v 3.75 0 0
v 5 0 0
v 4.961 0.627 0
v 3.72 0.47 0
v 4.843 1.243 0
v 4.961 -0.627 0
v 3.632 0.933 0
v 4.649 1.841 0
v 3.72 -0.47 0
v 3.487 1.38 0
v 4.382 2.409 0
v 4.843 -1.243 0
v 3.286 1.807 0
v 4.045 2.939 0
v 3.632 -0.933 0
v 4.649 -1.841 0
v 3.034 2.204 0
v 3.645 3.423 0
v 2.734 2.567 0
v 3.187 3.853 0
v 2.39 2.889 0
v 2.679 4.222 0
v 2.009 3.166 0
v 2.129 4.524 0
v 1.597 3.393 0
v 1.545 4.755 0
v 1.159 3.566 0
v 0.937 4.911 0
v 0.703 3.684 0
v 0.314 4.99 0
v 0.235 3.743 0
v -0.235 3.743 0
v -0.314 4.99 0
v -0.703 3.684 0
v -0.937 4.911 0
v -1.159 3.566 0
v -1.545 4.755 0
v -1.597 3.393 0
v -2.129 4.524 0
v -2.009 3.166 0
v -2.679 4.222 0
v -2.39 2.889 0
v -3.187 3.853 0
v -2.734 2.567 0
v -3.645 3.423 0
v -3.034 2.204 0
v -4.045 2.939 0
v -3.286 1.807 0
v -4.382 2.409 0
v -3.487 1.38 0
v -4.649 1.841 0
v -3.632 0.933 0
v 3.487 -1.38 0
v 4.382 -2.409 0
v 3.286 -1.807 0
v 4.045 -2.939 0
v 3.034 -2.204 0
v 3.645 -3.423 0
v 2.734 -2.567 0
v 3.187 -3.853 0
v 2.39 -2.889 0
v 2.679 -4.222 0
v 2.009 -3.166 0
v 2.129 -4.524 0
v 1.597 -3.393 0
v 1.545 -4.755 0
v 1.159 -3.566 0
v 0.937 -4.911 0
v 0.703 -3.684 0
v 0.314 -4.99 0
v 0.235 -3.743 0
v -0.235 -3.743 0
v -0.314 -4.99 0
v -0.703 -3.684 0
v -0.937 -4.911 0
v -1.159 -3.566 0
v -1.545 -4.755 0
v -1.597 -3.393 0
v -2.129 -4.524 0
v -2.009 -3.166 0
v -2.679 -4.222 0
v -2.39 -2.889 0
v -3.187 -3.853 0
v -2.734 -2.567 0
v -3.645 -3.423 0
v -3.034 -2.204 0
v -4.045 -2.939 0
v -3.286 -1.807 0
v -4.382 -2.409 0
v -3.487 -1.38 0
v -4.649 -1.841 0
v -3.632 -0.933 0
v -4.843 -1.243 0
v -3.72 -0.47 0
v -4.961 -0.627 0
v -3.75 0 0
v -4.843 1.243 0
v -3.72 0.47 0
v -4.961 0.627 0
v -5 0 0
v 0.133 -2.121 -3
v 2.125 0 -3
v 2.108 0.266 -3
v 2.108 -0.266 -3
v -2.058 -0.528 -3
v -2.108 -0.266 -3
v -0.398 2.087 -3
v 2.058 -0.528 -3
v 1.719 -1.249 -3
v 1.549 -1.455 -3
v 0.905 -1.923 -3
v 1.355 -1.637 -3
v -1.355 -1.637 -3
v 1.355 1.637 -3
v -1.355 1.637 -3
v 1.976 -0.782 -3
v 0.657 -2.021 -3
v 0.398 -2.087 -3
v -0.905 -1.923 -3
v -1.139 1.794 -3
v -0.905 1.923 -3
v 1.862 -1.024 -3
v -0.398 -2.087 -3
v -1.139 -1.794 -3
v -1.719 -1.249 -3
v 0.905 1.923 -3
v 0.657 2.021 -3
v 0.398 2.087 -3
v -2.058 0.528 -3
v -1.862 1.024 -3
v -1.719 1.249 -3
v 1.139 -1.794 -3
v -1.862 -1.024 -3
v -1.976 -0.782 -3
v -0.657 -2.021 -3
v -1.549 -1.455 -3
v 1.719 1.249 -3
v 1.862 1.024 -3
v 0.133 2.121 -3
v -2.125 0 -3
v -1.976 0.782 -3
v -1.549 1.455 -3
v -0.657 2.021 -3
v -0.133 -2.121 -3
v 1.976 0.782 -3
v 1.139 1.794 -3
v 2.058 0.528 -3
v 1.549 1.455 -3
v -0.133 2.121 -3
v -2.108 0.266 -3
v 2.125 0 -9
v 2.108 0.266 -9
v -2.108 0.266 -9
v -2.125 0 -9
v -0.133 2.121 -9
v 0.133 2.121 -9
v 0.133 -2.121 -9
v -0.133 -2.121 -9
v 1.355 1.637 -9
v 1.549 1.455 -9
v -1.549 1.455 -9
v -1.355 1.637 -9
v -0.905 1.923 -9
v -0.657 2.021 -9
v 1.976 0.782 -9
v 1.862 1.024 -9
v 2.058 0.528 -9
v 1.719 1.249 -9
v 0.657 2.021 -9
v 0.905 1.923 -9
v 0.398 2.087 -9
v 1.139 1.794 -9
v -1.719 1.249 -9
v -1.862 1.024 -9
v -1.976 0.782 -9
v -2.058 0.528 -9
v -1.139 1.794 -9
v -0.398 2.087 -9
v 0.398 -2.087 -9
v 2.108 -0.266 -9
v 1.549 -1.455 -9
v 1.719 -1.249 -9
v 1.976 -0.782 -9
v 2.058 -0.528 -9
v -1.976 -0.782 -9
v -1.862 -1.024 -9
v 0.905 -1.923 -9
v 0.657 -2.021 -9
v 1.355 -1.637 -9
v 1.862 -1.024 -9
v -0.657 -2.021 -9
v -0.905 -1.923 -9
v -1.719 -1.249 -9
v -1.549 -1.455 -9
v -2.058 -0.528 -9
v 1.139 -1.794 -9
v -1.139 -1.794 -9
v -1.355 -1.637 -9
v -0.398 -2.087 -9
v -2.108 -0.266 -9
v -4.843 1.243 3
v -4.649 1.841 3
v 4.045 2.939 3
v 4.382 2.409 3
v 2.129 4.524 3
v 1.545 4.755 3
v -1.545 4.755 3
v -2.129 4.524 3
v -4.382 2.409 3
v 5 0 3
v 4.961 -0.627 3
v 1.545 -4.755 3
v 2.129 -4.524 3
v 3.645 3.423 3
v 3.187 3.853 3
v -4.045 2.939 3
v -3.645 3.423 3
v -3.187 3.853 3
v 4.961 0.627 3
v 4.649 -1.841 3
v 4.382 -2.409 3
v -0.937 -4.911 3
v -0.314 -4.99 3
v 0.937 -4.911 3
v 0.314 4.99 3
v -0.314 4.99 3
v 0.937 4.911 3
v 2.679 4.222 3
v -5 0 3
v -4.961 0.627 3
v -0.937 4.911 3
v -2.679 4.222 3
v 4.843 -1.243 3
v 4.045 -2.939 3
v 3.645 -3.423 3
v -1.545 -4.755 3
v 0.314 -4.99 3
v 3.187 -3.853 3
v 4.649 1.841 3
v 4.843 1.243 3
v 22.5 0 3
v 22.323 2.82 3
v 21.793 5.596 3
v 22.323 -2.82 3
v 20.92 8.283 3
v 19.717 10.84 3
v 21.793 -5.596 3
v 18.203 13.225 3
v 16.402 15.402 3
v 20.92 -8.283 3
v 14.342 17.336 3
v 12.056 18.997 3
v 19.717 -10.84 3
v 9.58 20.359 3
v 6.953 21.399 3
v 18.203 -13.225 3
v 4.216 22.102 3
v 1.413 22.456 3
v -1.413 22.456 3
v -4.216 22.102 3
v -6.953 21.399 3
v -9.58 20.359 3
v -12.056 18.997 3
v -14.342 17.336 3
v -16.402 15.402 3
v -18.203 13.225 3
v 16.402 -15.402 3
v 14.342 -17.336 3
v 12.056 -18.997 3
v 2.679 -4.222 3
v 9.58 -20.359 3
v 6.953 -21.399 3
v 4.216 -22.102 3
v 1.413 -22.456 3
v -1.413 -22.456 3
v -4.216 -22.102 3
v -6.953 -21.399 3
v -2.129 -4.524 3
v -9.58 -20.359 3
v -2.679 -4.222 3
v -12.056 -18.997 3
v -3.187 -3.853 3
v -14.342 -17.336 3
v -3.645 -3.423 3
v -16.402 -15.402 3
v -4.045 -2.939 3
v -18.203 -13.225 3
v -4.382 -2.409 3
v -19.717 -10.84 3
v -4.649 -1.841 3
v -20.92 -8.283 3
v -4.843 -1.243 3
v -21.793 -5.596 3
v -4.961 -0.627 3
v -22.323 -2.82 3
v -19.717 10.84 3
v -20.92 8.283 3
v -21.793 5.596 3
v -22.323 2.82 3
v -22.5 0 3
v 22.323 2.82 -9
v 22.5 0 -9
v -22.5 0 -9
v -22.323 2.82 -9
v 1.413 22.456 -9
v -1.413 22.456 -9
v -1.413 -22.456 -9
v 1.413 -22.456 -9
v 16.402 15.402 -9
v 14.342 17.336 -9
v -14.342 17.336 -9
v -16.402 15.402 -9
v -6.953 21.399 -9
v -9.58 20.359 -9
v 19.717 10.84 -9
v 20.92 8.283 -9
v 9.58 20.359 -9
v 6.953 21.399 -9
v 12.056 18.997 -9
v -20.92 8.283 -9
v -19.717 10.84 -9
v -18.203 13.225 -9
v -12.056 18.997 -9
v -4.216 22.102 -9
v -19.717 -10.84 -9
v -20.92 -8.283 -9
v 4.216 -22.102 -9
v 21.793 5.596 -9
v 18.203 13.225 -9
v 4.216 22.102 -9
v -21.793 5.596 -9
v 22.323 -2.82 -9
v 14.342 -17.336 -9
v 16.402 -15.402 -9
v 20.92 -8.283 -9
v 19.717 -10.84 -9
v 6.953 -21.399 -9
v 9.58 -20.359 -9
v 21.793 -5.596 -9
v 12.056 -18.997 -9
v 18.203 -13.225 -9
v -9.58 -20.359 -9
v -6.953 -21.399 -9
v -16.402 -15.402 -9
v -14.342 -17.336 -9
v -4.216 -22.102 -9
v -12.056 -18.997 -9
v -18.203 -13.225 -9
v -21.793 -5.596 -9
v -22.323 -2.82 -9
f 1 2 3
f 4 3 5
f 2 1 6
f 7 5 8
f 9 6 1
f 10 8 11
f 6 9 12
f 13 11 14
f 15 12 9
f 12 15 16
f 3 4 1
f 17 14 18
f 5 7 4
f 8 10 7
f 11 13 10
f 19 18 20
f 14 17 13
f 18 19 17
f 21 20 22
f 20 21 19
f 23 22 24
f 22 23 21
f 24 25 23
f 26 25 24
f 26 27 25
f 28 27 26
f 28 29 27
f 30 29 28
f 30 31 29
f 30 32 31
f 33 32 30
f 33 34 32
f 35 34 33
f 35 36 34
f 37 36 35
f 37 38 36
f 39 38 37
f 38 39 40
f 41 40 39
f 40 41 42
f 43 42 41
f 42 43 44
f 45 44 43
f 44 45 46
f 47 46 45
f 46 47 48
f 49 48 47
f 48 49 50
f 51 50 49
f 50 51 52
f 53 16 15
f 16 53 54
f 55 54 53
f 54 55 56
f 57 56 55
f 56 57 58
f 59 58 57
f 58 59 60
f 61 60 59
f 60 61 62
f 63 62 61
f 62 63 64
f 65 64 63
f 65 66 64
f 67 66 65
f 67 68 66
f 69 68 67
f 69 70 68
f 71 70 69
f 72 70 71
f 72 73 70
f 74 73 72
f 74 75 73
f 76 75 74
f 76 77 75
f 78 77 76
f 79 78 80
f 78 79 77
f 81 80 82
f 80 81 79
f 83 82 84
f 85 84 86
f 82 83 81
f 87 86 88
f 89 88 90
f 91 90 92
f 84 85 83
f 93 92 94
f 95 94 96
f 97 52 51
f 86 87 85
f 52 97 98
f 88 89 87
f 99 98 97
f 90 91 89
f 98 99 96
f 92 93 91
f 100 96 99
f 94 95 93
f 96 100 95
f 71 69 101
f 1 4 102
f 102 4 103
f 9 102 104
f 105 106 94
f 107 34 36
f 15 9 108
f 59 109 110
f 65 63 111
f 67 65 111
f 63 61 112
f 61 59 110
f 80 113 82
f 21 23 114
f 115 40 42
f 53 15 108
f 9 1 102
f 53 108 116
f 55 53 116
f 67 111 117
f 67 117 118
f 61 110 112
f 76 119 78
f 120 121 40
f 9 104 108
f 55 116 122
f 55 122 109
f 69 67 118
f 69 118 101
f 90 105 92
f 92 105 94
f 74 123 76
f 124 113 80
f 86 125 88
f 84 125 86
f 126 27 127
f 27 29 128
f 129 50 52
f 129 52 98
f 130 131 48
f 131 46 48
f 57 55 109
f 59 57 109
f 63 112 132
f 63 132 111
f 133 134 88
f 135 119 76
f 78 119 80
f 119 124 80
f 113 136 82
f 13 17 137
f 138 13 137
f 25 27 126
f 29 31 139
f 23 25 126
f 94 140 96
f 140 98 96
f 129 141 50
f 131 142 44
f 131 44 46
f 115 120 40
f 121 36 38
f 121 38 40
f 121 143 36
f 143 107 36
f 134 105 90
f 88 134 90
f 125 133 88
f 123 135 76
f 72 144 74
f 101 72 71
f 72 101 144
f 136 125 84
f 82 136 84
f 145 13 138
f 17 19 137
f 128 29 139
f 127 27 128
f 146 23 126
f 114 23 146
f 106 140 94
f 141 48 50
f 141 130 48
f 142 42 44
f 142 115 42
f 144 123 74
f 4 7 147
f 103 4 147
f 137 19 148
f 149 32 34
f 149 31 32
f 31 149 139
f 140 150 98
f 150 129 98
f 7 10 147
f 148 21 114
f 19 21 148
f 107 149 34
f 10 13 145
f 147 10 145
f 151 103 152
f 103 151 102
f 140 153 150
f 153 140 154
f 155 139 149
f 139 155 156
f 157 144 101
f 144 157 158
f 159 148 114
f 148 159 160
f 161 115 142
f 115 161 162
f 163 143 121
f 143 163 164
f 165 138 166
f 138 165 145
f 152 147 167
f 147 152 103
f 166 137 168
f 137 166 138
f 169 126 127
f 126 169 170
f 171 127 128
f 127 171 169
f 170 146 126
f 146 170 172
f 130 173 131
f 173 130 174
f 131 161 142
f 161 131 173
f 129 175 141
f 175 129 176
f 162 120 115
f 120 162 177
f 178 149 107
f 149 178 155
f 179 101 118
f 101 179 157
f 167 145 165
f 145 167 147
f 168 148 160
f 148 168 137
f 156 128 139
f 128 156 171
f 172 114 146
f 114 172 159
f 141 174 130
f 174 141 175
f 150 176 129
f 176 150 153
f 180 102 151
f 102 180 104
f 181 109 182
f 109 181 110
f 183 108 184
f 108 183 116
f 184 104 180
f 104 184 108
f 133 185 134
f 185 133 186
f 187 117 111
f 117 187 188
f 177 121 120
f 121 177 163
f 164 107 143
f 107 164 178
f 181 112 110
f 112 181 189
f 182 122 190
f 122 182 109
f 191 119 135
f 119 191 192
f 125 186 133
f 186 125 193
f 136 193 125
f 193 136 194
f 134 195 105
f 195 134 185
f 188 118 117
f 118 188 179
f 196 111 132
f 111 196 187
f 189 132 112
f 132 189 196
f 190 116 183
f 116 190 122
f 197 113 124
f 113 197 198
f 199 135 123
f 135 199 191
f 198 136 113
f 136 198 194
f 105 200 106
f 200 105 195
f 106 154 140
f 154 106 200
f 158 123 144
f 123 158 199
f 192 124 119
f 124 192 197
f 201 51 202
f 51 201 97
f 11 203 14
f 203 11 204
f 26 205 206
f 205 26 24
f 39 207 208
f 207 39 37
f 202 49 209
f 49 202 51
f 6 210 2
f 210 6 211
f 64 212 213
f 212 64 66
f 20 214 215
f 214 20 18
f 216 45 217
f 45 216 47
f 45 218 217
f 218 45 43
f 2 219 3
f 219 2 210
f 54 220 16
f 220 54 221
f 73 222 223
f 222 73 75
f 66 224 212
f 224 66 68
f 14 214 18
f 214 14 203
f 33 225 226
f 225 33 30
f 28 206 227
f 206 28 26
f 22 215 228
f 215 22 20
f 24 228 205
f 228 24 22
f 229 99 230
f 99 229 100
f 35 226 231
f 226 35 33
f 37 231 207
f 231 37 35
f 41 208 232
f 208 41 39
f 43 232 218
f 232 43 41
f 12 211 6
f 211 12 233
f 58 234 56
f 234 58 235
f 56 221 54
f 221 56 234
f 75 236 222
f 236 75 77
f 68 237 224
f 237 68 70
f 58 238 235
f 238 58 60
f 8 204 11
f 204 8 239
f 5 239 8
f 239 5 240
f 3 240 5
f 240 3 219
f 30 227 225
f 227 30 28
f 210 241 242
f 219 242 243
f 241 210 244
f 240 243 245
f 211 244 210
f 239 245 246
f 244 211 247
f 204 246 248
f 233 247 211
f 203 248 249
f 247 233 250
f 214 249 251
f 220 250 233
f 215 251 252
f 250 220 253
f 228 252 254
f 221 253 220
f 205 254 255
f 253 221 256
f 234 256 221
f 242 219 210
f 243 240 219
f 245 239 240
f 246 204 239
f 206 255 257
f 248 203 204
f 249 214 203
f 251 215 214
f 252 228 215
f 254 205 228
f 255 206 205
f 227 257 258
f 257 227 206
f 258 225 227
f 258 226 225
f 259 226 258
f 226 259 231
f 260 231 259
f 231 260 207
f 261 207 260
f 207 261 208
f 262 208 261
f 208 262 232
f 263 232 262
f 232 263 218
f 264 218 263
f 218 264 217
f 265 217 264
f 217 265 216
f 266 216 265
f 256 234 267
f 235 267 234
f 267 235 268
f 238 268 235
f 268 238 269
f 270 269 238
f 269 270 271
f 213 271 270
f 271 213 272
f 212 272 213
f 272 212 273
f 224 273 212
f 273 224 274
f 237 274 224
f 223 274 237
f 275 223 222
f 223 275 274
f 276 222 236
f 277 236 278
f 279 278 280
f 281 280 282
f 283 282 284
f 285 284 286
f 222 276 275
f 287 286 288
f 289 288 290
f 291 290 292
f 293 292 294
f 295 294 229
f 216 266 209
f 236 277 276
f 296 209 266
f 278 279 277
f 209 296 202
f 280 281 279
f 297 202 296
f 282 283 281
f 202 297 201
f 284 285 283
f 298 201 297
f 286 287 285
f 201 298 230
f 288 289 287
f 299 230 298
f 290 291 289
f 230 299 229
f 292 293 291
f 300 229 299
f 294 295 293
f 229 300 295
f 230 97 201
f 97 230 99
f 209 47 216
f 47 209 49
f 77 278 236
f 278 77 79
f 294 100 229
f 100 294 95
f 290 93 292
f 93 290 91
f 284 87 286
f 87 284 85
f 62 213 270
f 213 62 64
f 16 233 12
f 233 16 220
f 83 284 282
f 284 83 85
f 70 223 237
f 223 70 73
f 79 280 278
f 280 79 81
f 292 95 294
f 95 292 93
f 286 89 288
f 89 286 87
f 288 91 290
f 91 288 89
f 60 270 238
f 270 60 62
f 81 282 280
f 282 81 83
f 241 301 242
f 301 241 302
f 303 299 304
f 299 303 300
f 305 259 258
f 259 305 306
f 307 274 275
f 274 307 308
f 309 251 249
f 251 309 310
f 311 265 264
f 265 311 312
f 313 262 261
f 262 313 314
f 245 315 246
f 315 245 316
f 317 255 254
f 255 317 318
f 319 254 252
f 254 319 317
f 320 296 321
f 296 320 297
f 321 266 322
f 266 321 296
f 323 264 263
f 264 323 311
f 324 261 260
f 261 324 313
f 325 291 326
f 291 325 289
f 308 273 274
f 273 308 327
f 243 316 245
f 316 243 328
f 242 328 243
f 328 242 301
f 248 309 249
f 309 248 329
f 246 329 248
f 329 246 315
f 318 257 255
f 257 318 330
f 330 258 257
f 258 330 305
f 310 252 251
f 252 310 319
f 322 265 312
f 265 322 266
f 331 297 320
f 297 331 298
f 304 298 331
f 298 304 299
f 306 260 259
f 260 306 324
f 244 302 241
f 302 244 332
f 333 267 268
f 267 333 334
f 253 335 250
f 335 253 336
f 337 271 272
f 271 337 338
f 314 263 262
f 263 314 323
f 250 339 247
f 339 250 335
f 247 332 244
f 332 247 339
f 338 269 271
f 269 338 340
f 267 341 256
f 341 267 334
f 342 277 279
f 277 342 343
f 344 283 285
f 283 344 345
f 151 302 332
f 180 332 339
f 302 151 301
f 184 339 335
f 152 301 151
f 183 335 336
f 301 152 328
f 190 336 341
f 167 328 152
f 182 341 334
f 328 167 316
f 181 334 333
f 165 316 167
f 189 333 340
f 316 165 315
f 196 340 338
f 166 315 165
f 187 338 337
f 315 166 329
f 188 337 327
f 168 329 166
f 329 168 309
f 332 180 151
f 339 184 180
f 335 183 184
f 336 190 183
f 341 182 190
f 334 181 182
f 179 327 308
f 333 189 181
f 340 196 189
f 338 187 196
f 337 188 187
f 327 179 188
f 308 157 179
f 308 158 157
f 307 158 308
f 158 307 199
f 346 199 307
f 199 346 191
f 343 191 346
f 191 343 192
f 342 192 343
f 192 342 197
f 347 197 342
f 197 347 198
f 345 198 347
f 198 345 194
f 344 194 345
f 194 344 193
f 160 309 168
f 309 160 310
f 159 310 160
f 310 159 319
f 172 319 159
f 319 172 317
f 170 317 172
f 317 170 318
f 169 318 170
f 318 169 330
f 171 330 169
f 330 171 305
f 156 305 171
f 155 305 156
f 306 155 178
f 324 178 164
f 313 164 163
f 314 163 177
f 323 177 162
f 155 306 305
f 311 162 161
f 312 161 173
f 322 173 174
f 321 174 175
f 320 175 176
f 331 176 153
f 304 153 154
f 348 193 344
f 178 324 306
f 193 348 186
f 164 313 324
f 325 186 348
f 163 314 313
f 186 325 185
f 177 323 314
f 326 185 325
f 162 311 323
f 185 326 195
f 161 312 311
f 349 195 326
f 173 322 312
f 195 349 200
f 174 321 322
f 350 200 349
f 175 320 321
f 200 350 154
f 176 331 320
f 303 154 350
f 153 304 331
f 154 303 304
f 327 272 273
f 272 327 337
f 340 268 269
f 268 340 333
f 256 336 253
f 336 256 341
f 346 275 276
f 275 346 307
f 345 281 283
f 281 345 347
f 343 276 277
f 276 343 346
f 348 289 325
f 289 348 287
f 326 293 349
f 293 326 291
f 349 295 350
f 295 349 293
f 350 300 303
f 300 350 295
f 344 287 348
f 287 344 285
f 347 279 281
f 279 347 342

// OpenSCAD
$fn = 50;


difference() {
	union() {
		translate(v = [0, 0, -9.0000000000]) {
			cylinder(h = 12, r = 22.5000000000);
		}
	}
	union() {
		translate(v = [0, 0, 0]) {
			rotate(a = [0, 0, 0]) {
				difference() {
					union() {
						translate(v = [0, 0, -12.0000000000]) {
							cylinder(h = 12, r = 2.0000000000);
						}
						translate(v = [0, 0, -3]) {
							cylinder(h = 3, r1 = 2.1250000000, r2 = 3.7500000000);
						}
						translate(v = [0, 0, -12.0000000000]) {
							cylinder(h = 12, r = 2.1250000000);
						}
						translate(v = [0, 0, -12.0000000000]) {
							cylinder(h = 12, r = 2.0000000000);
						}
					}
					union();
				}
			}
		}
		#cylinder(h = 3, r = 5.0000000000);
	}
}
